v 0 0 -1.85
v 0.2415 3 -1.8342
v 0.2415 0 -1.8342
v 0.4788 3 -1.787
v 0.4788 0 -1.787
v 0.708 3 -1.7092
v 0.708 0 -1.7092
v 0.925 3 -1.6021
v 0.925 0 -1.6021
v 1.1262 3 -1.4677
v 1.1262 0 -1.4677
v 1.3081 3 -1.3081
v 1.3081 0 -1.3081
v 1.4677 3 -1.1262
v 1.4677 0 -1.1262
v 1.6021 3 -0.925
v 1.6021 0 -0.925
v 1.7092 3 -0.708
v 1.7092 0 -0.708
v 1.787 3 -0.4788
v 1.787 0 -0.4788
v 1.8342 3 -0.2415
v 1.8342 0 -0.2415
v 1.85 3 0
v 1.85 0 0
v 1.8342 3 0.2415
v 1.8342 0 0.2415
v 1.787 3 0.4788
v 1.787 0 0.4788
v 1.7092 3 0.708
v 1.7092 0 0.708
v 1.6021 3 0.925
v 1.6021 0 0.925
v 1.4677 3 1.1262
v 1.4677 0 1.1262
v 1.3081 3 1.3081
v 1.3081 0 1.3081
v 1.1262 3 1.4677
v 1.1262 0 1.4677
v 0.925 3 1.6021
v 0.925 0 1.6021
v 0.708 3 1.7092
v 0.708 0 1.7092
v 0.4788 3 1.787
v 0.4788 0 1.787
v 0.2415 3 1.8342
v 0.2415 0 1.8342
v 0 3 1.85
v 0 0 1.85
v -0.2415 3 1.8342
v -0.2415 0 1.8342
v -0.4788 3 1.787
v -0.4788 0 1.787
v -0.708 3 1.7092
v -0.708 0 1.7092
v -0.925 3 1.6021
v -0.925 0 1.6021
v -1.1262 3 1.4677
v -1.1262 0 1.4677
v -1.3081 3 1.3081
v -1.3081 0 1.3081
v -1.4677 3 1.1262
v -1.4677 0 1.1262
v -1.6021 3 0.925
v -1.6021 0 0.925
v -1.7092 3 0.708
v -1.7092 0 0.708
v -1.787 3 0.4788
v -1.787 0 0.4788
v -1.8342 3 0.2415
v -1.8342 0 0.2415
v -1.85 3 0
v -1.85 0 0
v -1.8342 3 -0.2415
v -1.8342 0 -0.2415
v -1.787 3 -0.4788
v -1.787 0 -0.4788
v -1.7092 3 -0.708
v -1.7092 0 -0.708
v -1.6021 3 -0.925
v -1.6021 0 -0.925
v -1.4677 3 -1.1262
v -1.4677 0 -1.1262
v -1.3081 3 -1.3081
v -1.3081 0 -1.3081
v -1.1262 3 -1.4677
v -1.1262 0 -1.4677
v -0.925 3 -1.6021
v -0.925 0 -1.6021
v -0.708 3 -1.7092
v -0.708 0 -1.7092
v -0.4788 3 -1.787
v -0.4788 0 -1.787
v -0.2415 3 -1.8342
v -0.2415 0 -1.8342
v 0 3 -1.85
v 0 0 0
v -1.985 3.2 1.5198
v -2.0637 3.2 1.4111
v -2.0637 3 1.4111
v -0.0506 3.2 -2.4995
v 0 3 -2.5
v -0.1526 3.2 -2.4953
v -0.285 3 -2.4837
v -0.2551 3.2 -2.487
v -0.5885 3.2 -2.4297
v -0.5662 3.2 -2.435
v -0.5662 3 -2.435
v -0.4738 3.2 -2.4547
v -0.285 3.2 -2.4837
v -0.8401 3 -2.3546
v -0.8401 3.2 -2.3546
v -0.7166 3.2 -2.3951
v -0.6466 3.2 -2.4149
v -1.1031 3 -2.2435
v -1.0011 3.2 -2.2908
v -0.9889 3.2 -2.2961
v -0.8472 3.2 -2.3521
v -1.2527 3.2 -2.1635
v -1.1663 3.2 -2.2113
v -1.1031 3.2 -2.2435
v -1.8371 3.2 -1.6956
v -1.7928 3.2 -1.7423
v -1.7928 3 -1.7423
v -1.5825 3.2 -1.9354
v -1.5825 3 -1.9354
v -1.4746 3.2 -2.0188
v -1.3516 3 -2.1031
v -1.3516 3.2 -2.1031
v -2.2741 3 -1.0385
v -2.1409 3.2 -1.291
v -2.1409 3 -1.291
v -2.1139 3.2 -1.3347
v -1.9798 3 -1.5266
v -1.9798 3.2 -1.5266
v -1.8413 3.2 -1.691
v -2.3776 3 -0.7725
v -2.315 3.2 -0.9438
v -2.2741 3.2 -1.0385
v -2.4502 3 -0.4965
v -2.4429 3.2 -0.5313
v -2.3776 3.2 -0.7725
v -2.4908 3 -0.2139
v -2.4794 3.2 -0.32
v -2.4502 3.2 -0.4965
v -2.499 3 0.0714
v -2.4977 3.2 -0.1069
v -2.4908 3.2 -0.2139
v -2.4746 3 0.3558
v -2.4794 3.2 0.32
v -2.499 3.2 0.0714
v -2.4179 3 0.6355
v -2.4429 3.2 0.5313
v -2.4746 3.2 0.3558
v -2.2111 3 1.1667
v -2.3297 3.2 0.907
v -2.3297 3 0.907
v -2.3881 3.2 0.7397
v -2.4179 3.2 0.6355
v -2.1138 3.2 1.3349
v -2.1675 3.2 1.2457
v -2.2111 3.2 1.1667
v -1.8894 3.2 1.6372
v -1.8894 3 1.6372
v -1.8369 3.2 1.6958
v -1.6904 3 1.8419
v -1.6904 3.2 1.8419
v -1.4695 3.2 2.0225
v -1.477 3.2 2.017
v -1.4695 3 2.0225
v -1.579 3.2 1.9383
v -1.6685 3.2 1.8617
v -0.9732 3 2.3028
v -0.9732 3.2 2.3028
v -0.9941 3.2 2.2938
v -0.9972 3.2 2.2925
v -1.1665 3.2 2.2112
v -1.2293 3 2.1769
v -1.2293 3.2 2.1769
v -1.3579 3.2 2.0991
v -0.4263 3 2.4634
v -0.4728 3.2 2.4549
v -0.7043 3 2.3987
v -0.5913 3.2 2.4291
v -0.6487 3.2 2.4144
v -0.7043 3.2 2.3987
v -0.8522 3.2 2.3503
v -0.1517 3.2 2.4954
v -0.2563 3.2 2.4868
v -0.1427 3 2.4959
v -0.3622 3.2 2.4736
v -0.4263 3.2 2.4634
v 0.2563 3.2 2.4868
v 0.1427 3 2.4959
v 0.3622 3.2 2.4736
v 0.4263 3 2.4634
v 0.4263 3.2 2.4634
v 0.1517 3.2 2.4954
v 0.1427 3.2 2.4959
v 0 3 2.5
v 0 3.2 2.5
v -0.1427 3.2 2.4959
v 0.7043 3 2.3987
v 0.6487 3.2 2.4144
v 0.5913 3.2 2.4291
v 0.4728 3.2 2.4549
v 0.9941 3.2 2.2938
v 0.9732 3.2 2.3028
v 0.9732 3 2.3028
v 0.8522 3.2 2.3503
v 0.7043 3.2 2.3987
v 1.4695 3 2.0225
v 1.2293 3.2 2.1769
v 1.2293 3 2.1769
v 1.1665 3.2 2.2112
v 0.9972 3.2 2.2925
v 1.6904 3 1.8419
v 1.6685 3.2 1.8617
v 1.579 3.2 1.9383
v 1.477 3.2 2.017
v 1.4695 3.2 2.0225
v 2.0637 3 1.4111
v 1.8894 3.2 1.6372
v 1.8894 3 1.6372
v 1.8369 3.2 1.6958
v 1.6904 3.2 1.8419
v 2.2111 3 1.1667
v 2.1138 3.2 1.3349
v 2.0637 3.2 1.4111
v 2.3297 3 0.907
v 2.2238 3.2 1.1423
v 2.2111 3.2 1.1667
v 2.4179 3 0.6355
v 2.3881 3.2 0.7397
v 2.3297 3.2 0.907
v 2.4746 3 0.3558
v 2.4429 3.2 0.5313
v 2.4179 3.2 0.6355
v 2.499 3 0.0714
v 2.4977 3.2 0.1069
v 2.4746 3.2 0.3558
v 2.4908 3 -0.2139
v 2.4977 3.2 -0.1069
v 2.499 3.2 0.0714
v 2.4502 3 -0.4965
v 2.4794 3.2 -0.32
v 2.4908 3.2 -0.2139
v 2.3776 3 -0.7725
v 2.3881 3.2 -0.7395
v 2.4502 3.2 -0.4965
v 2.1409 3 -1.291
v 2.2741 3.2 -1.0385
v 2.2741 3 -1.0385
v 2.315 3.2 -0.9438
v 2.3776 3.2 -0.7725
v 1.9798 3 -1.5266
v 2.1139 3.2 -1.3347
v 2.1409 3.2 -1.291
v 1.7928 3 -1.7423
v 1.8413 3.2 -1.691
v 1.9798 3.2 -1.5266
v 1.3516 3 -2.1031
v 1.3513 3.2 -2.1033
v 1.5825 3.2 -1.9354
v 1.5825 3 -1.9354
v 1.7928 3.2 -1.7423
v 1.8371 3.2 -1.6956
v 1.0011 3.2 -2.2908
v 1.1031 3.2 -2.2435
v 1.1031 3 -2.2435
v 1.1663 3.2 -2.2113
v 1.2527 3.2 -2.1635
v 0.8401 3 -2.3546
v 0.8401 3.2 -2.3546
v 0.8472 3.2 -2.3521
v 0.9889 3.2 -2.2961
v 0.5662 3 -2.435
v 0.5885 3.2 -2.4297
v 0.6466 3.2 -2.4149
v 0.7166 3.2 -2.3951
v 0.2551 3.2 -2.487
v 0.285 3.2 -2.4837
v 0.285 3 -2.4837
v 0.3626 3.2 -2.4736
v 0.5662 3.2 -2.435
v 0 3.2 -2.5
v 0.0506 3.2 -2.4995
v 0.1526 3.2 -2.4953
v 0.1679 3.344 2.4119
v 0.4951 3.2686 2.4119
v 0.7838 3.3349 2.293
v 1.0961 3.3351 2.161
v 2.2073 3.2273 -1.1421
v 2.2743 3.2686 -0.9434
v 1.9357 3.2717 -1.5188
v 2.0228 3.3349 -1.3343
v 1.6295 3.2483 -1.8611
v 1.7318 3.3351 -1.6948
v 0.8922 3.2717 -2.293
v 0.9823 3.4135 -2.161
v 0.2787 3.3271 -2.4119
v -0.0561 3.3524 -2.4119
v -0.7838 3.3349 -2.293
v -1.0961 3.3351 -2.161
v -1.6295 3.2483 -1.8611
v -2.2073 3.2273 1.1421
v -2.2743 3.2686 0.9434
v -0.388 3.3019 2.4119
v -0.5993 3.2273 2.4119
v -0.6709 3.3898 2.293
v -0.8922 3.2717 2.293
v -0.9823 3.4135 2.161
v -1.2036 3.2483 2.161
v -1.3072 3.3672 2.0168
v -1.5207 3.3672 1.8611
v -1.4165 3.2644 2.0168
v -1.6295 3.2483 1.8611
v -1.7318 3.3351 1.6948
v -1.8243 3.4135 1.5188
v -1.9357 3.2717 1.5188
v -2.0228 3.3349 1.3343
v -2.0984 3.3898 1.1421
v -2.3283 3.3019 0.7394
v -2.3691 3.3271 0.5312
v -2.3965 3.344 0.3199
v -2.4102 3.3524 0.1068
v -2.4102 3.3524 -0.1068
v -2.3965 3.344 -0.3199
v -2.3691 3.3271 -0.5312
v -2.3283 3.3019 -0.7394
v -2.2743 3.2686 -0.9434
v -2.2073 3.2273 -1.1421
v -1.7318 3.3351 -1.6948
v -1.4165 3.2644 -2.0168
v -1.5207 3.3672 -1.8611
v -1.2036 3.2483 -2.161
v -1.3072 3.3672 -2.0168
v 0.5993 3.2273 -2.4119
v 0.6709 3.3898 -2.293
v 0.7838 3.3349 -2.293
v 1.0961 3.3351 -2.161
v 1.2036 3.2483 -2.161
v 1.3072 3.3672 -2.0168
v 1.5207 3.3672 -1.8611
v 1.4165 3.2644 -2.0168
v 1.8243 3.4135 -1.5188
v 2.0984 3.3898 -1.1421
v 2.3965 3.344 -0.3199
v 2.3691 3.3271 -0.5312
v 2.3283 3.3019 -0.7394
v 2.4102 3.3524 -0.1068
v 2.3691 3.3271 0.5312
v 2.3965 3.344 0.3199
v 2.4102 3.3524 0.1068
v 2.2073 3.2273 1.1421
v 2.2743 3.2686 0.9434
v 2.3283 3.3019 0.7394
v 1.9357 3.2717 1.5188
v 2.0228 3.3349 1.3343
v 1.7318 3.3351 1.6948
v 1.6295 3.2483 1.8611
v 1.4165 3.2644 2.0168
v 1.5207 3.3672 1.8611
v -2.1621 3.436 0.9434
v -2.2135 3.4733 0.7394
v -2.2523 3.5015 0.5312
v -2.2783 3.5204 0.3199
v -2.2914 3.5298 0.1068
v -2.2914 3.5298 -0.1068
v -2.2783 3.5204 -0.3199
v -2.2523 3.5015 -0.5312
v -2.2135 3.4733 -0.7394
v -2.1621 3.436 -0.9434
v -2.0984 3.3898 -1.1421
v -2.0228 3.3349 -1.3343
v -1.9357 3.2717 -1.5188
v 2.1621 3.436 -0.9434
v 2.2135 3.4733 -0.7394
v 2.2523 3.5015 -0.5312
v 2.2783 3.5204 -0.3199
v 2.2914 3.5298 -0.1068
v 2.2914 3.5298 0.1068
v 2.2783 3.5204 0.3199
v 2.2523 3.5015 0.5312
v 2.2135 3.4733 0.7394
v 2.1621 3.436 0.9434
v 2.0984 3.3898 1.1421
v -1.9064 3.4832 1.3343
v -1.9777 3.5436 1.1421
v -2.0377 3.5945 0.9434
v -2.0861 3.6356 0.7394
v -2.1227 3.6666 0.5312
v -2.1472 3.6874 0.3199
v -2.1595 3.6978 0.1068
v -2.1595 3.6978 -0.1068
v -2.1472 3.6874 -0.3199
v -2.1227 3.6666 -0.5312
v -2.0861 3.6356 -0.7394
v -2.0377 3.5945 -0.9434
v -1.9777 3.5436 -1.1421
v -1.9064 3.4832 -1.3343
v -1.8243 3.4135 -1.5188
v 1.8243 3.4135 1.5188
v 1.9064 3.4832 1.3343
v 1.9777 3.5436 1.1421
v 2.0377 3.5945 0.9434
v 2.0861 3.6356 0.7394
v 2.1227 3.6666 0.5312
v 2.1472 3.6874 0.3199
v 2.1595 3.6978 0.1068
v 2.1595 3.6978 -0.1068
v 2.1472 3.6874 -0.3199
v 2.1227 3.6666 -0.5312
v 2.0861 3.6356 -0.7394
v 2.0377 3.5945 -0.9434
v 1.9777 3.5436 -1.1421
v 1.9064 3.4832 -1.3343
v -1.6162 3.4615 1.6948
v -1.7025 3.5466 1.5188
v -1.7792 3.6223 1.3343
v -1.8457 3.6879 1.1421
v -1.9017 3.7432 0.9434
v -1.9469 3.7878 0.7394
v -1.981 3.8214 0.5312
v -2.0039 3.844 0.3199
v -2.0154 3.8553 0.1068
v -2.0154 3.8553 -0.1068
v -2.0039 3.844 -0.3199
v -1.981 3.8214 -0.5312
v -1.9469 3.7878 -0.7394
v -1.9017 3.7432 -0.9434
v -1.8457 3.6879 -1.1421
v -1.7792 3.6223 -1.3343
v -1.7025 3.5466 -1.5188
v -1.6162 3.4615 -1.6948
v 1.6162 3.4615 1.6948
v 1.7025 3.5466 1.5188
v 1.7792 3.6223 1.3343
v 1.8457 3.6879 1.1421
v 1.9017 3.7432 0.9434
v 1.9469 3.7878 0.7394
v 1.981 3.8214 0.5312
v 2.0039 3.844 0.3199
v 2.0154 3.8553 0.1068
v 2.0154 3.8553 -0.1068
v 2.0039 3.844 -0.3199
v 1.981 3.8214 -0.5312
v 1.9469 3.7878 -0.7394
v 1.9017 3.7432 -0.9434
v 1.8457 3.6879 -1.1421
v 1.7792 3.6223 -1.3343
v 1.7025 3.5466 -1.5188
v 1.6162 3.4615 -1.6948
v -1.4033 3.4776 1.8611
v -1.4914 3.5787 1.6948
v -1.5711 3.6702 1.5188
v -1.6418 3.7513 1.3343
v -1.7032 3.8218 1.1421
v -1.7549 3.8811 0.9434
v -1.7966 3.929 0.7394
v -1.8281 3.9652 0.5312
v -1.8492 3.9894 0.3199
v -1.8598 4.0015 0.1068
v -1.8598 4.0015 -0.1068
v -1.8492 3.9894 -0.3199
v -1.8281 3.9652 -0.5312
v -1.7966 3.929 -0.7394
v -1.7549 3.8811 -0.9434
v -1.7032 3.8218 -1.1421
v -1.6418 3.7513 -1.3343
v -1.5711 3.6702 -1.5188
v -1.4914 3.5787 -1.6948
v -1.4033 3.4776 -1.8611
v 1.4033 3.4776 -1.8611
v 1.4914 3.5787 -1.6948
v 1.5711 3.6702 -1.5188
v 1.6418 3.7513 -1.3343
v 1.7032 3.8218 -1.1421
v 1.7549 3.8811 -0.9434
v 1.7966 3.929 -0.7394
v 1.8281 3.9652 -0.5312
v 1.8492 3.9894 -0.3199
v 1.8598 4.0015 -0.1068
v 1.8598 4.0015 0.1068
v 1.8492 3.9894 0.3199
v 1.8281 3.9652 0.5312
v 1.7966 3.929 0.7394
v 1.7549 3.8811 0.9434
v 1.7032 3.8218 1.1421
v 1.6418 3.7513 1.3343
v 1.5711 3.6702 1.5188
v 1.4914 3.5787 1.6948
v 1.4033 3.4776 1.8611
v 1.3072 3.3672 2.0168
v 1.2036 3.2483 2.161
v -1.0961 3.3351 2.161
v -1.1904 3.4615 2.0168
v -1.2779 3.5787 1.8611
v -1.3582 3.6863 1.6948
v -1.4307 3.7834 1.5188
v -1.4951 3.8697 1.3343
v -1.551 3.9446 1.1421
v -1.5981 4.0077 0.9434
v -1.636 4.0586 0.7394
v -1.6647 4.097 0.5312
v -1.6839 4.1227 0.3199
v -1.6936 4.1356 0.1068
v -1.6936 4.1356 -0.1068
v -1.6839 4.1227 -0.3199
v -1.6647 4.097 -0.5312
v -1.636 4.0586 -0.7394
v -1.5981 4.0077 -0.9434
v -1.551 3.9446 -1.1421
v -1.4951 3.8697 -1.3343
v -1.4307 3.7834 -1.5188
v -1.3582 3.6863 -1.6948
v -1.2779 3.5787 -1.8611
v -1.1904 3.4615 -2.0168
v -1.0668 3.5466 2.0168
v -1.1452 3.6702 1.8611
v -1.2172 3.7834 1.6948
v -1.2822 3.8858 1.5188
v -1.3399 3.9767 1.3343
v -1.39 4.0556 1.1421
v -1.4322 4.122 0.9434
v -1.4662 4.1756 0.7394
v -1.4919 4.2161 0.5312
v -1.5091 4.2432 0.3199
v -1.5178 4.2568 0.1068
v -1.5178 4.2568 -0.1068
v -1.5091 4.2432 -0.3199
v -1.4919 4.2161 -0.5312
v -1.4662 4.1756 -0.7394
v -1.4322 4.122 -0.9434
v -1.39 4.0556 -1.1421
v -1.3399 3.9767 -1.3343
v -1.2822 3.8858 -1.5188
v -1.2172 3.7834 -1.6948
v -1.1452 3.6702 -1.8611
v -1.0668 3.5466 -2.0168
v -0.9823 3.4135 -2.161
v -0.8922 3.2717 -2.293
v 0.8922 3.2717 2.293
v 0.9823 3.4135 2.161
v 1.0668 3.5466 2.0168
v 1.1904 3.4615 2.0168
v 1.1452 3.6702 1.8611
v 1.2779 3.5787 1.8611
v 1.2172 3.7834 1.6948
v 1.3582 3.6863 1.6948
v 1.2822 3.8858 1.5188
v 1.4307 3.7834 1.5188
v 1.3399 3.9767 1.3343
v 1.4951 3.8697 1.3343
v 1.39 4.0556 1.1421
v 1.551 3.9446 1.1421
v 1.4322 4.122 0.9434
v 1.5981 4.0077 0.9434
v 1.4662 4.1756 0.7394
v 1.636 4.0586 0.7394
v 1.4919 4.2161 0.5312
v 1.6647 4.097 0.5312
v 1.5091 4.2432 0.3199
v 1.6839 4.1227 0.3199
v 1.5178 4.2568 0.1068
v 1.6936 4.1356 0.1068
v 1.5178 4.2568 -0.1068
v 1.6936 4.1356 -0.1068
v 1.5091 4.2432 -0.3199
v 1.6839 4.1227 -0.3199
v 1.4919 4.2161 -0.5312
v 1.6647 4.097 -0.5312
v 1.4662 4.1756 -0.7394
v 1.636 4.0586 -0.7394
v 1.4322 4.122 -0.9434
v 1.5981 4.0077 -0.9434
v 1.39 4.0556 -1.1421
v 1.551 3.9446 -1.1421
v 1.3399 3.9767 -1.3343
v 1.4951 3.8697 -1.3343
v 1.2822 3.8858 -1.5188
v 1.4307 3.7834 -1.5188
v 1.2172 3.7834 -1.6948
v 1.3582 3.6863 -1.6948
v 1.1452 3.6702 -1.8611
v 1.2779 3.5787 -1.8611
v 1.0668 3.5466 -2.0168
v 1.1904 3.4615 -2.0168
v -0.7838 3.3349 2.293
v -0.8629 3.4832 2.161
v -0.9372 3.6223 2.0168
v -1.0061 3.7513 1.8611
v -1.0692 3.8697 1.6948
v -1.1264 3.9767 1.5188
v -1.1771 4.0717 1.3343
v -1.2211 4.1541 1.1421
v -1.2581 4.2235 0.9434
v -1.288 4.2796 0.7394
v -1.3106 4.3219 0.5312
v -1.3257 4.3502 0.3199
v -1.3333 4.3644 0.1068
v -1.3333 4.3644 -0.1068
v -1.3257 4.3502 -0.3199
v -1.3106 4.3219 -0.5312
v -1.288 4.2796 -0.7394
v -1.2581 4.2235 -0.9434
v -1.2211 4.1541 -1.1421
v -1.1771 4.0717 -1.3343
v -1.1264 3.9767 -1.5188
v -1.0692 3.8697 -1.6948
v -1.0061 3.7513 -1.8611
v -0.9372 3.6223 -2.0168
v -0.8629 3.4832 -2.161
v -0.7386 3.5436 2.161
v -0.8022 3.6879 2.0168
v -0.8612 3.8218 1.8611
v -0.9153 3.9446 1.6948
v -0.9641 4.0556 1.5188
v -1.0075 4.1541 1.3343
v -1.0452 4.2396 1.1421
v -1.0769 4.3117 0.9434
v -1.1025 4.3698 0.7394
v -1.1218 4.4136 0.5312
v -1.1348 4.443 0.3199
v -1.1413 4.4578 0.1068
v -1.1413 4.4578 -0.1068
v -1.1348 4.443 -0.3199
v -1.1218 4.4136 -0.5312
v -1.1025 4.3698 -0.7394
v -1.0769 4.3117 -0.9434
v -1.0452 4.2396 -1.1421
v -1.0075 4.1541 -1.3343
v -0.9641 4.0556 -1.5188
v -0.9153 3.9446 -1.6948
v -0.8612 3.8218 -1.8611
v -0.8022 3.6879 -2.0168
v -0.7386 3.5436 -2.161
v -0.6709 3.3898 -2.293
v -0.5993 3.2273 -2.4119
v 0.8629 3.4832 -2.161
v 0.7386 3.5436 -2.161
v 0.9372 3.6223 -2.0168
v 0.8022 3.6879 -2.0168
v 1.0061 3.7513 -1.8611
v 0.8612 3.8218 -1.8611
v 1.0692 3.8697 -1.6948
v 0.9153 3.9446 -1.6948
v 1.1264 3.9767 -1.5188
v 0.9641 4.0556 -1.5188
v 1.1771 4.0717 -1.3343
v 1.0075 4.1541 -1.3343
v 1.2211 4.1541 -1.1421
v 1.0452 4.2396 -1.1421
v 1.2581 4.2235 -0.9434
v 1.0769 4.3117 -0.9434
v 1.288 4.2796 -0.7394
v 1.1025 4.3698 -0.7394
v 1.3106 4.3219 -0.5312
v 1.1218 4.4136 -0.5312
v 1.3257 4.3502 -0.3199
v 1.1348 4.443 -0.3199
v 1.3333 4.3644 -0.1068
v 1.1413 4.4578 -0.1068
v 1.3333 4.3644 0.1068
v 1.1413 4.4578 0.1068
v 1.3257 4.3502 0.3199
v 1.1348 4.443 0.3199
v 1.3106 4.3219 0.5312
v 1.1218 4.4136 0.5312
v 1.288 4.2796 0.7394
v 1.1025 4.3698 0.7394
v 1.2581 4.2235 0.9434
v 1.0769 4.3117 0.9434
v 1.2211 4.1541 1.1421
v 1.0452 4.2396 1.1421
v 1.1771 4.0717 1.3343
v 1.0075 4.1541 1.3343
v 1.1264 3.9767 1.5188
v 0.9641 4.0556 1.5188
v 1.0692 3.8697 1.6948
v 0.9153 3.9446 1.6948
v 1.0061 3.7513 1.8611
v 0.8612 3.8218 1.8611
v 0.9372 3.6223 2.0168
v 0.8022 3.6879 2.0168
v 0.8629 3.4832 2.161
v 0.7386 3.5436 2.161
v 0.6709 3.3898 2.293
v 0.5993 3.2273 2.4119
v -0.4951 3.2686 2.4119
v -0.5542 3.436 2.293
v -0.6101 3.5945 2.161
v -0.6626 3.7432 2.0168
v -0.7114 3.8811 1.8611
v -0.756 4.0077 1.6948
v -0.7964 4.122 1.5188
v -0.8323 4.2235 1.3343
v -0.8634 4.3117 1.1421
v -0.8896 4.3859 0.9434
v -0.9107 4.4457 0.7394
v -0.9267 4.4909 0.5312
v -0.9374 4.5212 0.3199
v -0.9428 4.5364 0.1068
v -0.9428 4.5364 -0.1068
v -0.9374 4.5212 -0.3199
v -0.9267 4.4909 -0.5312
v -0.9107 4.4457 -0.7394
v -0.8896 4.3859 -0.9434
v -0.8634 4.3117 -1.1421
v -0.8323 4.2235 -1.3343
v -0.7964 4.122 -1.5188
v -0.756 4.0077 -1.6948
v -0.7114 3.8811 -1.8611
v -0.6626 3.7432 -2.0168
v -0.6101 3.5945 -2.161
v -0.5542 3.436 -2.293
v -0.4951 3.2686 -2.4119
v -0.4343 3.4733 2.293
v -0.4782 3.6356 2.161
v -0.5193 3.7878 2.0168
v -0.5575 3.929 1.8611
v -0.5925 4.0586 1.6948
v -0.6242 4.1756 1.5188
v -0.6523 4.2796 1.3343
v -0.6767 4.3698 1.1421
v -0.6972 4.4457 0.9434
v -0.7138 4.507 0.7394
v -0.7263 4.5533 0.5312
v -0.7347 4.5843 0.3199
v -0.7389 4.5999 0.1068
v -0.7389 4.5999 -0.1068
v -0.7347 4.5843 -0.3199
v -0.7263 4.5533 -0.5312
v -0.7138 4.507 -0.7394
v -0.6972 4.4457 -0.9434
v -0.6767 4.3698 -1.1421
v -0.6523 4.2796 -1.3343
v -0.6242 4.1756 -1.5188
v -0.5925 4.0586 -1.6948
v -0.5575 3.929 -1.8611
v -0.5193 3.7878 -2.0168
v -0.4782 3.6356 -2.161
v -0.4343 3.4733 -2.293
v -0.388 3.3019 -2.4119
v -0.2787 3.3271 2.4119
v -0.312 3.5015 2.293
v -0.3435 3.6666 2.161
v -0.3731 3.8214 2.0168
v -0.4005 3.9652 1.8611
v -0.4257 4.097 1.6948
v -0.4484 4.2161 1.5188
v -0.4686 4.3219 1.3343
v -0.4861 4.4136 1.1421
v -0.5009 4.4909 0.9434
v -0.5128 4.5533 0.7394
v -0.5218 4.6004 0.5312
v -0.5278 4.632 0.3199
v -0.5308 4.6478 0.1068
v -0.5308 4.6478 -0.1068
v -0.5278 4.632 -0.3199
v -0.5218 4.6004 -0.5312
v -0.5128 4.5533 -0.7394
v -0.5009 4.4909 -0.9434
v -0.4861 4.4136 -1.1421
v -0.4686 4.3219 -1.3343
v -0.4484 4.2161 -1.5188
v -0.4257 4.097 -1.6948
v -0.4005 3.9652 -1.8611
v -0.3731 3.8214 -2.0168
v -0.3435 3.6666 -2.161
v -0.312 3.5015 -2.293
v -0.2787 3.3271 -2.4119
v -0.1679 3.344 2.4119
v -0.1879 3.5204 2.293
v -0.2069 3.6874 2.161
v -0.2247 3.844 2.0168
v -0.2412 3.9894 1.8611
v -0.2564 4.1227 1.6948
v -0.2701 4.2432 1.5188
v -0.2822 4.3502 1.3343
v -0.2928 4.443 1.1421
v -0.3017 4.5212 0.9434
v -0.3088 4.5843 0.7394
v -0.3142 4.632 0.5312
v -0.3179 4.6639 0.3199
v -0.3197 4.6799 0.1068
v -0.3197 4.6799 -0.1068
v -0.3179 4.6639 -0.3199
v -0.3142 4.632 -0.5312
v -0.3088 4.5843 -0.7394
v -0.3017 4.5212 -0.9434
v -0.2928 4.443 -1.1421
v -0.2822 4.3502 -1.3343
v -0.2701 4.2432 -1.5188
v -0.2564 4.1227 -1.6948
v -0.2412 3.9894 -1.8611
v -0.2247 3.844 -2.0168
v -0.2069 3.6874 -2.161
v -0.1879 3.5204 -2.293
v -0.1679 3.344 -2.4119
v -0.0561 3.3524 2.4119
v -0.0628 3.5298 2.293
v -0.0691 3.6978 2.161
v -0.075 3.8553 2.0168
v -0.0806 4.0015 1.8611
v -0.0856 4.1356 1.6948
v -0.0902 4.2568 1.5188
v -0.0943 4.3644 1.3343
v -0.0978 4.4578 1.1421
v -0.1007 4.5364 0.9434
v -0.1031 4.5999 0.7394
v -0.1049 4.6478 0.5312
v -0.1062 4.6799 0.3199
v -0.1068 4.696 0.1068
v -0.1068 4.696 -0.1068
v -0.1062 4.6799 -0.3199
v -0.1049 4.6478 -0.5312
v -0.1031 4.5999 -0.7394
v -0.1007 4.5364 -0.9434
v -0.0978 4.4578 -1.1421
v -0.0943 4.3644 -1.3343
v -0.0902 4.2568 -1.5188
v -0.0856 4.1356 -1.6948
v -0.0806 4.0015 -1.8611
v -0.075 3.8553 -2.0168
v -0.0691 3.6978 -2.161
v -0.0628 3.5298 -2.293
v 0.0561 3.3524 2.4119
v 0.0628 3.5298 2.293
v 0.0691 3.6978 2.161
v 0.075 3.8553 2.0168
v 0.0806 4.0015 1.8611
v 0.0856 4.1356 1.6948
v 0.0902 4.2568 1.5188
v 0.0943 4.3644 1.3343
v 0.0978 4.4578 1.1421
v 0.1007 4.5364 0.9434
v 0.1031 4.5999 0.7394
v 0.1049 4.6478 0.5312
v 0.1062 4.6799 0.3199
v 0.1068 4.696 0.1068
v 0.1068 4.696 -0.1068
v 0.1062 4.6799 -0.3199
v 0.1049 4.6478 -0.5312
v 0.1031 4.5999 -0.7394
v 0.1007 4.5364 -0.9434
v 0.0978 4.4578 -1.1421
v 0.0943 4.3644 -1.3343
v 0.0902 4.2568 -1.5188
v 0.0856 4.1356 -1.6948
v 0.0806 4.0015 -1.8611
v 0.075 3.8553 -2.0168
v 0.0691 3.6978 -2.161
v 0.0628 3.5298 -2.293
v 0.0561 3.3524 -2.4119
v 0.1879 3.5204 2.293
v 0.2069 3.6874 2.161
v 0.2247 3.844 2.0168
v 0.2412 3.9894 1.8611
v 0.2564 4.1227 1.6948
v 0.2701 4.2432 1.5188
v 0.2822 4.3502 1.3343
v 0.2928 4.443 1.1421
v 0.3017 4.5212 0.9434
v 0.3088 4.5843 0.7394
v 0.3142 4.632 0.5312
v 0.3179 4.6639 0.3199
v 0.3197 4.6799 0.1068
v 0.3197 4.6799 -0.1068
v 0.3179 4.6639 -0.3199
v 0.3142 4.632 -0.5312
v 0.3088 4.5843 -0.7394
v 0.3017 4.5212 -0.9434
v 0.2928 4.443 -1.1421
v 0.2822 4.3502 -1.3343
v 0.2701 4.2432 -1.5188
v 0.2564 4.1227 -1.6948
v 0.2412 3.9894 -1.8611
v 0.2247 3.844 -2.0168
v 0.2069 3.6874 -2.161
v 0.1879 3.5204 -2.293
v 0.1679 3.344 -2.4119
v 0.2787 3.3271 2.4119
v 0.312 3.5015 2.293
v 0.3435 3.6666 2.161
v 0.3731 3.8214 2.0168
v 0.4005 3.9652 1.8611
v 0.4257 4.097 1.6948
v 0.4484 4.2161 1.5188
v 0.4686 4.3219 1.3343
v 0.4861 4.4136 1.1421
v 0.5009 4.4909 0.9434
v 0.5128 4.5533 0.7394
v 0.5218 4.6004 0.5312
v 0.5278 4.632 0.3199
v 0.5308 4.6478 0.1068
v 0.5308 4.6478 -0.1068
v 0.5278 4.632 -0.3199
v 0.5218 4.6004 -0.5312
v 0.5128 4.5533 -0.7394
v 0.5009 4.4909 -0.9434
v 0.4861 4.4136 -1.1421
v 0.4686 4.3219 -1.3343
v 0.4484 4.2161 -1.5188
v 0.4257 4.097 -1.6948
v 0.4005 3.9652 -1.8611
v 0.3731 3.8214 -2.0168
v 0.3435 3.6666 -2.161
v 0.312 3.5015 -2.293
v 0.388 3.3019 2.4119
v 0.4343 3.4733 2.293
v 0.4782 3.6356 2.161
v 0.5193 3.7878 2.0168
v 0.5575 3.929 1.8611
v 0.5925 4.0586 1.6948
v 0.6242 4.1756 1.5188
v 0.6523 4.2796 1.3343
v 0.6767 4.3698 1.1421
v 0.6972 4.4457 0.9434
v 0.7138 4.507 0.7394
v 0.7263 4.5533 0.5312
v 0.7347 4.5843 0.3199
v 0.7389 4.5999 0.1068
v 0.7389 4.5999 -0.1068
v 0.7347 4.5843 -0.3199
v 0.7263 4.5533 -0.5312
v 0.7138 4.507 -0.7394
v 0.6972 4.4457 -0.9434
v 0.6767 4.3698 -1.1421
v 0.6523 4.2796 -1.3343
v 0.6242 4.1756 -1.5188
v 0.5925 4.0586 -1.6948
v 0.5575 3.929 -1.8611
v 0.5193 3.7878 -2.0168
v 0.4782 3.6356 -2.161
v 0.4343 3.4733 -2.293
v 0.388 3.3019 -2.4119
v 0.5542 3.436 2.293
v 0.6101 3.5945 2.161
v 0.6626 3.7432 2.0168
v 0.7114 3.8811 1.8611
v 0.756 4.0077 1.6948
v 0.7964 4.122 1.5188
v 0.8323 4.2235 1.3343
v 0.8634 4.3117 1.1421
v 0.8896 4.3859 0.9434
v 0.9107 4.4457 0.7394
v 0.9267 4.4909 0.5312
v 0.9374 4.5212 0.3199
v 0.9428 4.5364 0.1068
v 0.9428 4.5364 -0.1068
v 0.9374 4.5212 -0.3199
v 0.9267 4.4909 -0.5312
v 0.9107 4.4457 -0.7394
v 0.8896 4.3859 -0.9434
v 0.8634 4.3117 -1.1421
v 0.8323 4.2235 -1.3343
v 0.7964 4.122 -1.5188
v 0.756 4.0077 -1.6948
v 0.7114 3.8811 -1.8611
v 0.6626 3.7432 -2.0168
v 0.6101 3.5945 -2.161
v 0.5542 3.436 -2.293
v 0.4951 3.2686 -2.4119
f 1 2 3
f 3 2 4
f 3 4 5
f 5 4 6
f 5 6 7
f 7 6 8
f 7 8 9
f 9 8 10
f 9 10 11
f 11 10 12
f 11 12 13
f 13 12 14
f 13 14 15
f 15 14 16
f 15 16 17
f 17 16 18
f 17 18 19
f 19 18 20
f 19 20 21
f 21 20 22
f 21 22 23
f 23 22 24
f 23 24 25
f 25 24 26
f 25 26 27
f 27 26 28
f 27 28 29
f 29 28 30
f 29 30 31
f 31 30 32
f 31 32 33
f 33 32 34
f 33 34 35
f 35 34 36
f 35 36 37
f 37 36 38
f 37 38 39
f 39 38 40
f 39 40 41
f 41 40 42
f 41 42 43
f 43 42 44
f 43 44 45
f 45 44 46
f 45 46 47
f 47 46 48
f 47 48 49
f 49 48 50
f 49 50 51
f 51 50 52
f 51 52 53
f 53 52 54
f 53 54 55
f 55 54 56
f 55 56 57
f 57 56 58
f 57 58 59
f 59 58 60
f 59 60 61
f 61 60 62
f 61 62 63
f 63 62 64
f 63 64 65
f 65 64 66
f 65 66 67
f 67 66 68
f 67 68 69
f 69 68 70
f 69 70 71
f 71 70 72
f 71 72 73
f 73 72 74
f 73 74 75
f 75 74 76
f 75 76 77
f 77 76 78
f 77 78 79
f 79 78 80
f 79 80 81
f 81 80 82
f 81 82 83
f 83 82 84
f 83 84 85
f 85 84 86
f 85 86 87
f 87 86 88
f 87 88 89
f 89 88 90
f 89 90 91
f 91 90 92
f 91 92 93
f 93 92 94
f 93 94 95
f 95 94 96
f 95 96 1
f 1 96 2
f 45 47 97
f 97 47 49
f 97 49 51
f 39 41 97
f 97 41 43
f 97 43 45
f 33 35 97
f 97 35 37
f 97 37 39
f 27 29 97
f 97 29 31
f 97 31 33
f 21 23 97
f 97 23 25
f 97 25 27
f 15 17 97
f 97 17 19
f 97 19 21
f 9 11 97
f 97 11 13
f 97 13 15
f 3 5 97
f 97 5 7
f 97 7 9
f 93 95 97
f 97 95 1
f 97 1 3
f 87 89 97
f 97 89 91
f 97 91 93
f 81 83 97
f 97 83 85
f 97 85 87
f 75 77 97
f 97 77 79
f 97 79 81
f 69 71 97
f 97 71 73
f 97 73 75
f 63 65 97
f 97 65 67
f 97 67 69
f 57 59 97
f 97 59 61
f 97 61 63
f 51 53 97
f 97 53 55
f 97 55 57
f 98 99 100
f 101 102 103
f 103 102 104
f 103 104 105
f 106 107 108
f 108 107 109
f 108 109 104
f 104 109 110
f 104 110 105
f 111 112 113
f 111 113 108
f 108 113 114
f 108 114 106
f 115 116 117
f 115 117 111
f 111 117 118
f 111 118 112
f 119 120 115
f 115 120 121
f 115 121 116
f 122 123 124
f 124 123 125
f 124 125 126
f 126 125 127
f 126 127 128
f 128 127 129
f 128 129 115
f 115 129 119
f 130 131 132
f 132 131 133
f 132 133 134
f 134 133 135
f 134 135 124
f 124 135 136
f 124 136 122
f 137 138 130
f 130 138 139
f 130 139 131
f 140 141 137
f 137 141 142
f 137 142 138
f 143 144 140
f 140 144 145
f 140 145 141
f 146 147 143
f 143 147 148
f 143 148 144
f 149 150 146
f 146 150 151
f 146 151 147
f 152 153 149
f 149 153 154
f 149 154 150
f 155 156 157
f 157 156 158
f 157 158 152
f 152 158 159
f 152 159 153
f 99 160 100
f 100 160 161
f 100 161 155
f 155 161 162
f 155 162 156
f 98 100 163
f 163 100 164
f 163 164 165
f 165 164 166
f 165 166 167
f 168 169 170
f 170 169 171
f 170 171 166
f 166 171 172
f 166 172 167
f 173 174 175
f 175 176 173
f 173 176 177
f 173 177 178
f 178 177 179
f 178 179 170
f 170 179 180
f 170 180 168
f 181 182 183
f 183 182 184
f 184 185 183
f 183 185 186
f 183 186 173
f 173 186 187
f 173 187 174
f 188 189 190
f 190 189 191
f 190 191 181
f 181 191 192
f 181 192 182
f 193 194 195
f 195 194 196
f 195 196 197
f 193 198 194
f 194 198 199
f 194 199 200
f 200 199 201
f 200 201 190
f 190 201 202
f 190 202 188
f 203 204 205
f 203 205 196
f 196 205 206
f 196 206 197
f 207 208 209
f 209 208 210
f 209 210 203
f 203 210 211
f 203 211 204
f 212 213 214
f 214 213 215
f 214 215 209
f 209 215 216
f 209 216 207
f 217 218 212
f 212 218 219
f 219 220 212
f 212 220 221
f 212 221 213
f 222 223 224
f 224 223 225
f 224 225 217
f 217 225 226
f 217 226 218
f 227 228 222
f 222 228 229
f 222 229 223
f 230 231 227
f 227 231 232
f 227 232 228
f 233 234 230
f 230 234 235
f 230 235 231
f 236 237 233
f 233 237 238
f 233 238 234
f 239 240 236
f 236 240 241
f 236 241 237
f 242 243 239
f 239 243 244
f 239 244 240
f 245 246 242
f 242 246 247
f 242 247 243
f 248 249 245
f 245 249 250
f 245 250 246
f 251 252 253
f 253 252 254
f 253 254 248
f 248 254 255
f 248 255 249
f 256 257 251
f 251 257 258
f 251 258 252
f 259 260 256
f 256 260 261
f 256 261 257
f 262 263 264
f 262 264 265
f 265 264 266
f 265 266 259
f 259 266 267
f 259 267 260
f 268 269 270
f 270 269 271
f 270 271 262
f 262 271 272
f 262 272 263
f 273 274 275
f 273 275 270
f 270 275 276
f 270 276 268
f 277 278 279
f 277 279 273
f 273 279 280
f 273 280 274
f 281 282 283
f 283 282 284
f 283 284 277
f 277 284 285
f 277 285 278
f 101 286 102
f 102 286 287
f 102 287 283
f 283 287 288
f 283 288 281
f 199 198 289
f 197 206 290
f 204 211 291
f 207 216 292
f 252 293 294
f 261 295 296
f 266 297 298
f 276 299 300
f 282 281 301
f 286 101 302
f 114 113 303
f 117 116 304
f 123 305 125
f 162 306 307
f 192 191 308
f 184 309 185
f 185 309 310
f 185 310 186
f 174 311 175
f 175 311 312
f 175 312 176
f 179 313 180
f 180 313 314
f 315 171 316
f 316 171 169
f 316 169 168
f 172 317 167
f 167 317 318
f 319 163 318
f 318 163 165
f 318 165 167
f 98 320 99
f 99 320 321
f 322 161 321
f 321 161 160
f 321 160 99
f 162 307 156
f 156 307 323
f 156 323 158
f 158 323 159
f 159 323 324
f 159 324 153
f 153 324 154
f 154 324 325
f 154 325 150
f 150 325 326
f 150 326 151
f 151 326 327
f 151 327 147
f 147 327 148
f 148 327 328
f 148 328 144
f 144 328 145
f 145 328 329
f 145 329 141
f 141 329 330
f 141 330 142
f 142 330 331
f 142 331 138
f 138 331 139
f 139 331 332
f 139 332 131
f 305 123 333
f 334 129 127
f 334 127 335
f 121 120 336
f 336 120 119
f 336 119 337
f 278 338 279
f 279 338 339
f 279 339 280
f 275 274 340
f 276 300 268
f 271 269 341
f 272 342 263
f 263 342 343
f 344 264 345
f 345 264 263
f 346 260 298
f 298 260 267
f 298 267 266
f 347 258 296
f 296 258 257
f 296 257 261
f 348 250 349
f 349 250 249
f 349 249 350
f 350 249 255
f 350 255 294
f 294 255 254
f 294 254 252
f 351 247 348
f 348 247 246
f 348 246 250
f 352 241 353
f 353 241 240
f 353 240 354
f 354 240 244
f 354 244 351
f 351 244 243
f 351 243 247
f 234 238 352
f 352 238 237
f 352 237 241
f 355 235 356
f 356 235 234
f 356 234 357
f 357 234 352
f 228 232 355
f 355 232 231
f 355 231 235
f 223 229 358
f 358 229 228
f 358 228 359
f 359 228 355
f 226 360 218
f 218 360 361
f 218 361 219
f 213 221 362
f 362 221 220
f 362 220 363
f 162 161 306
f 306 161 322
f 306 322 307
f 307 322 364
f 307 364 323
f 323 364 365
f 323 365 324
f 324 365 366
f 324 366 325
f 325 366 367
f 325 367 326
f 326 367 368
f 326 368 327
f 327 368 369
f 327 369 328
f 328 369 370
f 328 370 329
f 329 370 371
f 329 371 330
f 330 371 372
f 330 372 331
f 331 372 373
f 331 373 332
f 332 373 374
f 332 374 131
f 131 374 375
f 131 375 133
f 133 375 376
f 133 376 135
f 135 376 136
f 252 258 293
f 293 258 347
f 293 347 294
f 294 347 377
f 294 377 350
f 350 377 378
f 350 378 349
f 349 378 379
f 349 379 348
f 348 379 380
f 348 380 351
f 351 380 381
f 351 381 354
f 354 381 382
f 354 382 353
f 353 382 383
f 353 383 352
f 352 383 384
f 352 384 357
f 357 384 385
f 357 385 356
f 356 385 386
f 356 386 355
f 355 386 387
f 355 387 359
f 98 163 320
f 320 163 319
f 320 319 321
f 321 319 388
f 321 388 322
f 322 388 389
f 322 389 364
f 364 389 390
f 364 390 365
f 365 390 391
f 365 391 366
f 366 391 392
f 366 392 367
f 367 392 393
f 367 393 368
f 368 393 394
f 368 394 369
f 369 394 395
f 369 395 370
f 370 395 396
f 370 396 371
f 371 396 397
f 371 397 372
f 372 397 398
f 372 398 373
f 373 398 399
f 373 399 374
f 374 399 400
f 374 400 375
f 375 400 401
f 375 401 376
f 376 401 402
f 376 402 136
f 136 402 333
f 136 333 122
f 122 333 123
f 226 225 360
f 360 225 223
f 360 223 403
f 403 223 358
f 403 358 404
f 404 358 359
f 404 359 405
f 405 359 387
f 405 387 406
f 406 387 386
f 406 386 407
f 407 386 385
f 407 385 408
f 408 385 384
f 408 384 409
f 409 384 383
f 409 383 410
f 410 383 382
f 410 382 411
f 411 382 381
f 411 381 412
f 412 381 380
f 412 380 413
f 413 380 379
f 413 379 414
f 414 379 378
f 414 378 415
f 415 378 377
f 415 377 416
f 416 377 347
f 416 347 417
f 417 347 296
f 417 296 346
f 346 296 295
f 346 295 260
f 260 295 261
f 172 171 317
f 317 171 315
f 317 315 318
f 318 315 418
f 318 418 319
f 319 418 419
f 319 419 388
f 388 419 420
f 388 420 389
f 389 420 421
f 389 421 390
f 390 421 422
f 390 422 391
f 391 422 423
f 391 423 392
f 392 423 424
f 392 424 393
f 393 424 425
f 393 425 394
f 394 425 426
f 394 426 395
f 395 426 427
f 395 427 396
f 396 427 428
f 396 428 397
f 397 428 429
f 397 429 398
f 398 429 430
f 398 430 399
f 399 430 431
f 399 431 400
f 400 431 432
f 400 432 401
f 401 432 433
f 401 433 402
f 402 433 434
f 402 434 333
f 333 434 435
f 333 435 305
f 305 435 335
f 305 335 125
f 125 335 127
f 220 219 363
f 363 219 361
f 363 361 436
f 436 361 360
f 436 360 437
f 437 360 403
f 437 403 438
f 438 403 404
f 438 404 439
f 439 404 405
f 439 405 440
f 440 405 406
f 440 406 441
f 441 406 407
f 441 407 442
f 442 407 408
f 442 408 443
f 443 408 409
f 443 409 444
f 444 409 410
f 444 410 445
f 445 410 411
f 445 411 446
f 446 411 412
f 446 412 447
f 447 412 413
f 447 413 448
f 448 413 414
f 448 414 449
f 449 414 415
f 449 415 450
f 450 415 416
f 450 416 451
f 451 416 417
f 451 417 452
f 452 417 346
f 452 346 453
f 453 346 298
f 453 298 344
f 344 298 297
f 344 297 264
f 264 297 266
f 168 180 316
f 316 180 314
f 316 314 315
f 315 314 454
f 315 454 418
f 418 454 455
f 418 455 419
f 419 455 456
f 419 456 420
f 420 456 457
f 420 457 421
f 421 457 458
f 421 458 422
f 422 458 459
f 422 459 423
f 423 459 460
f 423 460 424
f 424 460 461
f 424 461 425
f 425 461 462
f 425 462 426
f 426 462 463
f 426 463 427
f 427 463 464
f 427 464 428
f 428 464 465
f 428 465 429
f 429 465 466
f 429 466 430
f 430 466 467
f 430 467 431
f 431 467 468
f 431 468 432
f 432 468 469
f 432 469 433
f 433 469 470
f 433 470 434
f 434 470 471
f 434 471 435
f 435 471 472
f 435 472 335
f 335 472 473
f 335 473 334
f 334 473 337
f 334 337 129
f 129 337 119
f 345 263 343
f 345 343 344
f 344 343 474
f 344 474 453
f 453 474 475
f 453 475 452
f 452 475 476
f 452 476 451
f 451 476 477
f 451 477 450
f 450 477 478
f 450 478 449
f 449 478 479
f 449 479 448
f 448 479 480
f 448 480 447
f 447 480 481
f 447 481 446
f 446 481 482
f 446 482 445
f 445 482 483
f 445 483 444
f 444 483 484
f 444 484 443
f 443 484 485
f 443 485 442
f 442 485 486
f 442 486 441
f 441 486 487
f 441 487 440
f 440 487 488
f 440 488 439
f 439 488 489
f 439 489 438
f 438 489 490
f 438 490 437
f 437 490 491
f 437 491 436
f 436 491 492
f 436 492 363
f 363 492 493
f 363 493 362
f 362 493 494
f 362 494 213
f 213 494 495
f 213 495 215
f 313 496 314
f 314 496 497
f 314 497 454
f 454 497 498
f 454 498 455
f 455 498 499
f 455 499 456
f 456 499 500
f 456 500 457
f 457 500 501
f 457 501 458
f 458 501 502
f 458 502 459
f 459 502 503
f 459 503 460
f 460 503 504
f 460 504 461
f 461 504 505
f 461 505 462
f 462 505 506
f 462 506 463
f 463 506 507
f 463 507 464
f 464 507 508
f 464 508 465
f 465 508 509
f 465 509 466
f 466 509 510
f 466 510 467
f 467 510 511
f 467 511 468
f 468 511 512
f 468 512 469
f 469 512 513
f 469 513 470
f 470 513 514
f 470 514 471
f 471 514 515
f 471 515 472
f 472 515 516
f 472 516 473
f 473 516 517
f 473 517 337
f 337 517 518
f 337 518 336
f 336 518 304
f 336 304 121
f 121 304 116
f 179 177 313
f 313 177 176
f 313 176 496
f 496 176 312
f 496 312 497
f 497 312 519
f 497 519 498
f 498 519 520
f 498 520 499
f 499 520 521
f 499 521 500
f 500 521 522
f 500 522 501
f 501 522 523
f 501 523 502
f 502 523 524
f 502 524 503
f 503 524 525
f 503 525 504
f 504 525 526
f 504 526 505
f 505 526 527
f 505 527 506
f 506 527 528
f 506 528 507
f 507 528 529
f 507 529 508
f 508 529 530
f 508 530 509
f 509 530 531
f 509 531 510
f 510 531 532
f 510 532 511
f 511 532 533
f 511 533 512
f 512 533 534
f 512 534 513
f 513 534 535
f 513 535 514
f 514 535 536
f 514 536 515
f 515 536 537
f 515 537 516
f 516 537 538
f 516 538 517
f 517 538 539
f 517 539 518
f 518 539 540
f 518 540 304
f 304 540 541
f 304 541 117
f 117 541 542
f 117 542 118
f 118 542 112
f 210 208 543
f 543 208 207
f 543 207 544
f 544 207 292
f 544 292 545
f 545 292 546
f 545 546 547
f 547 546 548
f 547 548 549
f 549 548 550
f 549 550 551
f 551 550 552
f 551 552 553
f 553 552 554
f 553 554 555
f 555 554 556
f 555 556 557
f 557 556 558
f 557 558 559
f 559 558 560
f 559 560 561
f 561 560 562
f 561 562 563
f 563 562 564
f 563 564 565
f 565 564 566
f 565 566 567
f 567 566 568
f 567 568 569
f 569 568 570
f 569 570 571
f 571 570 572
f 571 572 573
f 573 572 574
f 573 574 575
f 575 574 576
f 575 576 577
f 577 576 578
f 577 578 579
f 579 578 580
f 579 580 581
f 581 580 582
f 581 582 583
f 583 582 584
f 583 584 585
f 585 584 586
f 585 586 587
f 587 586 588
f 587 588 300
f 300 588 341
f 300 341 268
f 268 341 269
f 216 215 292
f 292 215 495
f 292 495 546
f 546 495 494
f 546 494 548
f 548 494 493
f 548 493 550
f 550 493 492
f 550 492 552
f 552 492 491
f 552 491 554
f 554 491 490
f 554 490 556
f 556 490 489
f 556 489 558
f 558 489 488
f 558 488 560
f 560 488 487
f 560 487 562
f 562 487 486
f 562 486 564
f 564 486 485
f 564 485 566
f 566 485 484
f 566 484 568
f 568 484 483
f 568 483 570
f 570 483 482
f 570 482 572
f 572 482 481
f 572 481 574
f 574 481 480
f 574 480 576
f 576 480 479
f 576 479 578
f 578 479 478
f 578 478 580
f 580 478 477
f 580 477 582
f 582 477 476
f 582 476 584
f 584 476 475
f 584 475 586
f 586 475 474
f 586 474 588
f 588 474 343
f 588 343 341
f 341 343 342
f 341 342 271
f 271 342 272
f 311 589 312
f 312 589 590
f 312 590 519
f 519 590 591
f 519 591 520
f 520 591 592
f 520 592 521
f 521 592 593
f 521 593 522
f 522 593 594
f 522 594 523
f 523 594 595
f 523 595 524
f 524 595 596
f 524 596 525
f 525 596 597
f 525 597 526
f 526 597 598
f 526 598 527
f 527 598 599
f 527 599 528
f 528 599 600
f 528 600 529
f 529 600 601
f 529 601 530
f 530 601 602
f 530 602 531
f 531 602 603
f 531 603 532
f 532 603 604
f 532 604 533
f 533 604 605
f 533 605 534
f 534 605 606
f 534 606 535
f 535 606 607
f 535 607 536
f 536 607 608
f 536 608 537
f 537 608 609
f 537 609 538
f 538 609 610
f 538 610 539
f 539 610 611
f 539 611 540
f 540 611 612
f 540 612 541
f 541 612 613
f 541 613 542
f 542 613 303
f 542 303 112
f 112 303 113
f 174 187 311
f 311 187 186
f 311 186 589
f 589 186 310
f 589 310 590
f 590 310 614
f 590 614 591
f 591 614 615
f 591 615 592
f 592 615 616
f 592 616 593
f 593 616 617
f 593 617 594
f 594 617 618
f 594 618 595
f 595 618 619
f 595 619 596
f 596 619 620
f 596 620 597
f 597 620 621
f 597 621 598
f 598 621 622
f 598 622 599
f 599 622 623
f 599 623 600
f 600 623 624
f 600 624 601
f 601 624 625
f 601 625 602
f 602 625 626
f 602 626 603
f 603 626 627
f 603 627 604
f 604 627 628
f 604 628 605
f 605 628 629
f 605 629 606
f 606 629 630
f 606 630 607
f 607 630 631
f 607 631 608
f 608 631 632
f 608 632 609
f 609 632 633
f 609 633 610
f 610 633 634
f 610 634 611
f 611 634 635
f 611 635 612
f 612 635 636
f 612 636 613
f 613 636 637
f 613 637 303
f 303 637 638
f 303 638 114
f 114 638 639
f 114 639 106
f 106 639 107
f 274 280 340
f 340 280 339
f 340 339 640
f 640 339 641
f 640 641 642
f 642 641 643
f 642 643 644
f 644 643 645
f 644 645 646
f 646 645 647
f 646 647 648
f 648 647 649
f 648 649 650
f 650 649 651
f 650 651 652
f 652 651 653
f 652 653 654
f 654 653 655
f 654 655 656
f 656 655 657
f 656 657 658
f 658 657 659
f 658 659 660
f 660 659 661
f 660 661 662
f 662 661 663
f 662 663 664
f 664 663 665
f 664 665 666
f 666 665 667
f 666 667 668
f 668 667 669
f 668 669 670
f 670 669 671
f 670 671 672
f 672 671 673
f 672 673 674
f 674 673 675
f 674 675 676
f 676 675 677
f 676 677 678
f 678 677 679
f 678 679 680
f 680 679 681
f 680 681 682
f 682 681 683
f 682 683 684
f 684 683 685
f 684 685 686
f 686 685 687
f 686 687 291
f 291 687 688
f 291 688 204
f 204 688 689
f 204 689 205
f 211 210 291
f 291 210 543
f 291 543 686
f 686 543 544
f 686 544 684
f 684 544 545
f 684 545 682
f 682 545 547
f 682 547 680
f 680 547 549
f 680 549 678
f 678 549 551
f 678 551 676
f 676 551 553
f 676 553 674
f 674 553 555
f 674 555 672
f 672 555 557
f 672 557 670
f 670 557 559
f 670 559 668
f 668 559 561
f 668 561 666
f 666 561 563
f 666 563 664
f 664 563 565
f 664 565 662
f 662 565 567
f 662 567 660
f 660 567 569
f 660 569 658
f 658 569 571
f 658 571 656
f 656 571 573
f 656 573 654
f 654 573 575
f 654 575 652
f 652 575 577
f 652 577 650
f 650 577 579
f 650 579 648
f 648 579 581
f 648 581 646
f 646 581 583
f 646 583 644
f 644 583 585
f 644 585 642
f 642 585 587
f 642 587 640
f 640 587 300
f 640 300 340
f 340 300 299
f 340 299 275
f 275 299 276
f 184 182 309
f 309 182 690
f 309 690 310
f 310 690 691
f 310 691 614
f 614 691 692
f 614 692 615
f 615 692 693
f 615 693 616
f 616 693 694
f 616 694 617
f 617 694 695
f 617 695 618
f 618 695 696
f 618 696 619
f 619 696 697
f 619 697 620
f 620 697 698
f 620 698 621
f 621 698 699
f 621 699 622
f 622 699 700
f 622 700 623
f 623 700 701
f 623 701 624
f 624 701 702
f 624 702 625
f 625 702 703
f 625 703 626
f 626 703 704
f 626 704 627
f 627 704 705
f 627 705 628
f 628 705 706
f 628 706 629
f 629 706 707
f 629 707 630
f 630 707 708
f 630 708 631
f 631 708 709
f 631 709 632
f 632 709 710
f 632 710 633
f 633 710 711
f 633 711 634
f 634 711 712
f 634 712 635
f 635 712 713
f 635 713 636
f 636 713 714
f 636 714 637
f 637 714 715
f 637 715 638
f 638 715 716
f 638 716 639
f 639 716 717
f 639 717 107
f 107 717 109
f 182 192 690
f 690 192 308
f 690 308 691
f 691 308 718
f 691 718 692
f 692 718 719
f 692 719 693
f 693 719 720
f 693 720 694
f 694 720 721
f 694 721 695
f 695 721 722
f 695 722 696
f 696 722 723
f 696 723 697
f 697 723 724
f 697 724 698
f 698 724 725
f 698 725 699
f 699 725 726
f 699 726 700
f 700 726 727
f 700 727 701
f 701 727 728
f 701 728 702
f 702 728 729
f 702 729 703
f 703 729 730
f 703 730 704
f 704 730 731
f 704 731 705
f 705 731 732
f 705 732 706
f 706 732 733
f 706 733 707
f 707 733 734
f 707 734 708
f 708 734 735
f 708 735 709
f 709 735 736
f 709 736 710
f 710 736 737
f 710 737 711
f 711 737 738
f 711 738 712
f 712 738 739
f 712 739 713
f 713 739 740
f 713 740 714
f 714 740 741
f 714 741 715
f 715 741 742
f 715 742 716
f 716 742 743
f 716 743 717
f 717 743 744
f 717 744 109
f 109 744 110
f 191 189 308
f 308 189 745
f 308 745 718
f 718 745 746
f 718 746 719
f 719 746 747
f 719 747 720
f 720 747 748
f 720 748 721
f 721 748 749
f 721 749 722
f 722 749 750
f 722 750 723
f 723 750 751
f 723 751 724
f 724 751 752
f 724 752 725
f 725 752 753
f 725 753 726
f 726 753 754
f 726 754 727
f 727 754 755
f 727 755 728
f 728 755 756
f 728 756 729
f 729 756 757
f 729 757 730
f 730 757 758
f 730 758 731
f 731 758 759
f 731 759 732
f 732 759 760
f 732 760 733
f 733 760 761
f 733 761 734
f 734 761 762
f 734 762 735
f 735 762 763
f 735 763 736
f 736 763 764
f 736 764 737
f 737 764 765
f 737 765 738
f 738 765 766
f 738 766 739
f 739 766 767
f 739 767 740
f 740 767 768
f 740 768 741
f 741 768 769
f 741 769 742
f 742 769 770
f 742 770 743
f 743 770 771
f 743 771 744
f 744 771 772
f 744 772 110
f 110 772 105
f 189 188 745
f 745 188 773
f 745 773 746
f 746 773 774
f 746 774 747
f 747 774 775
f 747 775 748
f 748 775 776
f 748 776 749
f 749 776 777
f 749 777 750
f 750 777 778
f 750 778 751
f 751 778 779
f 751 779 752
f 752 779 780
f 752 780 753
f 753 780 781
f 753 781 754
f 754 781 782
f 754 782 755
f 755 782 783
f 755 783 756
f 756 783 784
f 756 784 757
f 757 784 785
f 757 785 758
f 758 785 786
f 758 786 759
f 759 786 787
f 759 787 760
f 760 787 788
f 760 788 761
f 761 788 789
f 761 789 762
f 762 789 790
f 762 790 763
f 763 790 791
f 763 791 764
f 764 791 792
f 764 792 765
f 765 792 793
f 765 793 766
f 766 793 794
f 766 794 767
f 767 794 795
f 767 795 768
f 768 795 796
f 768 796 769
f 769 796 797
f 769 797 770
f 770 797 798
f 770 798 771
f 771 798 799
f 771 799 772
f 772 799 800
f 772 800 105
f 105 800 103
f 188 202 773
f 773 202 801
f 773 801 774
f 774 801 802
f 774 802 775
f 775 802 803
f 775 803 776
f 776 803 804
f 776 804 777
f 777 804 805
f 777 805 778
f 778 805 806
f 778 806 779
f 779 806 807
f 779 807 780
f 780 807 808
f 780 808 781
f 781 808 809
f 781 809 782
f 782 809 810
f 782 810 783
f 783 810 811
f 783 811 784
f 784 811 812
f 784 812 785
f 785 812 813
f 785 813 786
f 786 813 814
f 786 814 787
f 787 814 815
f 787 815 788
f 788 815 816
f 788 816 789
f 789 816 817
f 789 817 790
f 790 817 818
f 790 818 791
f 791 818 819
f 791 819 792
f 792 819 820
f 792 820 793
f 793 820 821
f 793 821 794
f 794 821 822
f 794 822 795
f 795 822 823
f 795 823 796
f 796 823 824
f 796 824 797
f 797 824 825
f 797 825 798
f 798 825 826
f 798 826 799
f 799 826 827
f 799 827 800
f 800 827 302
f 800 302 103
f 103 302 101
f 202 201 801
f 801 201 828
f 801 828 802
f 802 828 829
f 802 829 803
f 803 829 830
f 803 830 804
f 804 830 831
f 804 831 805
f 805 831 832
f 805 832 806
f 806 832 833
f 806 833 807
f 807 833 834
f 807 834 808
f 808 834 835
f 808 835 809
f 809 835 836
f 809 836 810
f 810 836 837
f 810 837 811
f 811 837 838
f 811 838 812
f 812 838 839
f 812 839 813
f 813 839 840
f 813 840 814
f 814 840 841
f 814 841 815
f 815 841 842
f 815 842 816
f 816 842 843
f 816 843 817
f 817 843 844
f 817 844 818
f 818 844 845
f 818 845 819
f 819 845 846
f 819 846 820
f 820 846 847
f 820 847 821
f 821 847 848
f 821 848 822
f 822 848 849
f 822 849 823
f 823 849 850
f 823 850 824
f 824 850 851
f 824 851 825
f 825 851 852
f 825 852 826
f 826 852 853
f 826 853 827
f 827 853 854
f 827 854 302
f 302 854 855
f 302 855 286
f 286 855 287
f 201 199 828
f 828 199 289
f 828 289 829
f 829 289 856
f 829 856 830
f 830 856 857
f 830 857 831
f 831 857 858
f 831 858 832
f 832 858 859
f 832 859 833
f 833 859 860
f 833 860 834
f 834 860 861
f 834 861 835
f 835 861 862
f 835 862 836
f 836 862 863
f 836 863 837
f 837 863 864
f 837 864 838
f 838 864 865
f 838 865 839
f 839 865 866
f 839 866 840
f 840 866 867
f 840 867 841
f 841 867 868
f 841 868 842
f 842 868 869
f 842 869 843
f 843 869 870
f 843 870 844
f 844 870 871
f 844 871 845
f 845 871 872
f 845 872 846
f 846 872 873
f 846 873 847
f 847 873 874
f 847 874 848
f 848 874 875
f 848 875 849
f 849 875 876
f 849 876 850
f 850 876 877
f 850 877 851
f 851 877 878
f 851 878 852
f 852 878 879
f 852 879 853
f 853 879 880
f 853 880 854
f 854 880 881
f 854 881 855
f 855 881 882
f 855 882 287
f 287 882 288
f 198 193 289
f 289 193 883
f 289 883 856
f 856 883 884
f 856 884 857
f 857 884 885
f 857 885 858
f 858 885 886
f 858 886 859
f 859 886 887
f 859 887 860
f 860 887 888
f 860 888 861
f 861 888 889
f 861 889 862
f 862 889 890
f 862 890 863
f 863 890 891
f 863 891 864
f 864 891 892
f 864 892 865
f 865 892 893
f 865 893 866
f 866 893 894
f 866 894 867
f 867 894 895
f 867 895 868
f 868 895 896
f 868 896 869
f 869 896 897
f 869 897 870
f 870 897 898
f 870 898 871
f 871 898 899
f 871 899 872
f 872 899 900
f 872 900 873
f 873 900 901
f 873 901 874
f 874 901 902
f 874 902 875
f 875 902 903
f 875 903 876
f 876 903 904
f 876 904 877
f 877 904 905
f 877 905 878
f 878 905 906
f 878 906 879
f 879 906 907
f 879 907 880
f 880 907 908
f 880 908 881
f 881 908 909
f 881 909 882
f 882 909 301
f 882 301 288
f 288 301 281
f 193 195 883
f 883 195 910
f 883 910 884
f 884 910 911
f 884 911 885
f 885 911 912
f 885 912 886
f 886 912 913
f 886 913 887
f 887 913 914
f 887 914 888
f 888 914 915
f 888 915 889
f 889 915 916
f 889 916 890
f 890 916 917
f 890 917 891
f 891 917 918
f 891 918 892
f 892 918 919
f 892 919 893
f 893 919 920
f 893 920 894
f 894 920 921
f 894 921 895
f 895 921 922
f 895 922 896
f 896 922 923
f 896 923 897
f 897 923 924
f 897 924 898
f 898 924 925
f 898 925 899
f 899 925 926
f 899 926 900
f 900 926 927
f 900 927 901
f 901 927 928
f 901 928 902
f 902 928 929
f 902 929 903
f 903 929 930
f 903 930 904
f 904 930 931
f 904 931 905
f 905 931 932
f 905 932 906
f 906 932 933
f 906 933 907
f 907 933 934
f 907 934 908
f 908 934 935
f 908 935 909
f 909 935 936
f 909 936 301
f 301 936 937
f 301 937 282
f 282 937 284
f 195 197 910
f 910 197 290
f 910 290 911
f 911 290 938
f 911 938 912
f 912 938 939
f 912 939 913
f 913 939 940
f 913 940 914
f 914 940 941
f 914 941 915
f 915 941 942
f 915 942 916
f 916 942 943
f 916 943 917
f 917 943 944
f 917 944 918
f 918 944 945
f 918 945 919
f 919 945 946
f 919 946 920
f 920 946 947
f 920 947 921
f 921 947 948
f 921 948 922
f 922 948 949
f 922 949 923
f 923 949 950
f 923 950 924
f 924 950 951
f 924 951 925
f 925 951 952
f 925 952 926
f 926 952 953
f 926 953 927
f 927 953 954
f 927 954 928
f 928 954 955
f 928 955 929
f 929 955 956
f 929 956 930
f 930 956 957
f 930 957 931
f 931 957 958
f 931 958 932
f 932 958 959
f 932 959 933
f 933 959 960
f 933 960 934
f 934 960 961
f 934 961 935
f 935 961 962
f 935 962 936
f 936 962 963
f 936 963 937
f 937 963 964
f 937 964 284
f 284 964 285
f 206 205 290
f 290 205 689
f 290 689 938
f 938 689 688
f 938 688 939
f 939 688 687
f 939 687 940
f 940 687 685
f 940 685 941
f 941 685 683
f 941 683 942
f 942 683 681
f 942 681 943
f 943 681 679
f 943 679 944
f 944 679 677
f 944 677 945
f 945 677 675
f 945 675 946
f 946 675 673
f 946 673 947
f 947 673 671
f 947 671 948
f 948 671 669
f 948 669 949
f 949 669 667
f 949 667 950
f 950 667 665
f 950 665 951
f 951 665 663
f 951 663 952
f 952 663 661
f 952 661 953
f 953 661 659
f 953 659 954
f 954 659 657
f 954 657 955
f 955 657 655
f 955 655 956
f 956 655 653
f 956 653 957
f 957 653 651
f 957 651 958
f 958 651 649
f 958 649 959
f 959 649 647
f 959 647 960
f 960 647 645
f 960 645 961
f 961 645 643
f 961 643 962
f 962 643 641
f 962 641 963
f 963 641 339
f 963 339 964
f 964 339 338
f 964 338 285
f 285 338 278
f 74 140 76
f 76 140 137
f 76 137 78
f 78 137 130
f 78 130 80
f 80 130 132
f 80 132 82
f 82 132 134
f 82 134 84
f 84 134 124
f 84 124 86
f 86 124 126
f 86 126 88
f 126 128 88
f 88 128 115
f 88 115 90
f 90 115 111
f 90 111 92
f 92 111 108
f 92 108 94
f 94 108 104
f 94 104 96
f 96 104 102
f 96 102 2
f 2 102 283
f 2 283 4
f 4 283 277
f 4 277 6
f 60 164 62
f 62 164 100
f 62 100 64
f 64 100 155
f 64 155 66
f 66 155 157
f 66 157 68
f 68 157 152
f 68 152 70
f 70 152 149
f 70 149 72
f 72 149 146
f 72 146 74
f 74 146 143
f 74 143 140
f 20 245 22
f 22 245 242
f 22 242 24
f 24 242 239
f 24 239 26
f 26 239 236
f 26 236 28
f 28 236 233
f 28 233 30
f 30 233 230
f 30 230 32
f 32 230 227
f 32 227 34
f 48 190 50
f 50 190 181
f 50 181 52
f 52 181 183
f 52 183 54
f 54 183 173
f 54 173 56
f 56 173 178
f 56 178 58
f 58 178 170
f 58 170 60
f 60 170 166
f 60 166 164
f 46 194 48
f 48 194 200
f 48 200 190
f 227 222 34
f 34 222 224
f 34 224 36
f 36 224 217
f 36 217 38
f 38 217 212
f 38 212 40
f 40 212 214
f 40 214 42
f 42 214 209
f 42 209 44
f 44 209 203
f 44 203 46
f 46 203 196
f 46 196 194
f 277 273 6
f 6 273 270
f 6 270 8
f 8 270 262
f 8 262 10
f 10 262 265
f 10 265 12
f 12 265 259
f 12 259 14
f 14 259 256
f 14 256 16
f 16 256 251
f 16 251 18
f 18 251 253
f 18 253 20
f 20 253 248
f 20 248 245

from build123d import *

# Parameters (mm, degrees)
SKETCH1_R           = 1.85
BOSS_EXTRUDE1_DEPTH = 3
SKETCH2_R           = 2.5
BOSS_EXTRUDE2_DEPTH = 0.2
DOME2_FACE_RADIUS   = 2.5
DOME2_HEIGHT        = 1.5


with BuildPart() as part:
    # Sketch1 → Boss-Extrude1 (new body)
    with BuildSketch(Plane(origin=(0, 0, 0), x_dir=(1, 0, 0), z_dir=(0, 1, 0))):
        with Locations(Location((0, 0, 0), (0, 0, 270))):
            Circle(SKETCH1_R)
    extrude(amount=BOSS_EXTRUDE1_DEPTH)

    # Sketch2 → Boss-Extrude2 (add)
    with BuildSketch(Plane(origin=(0, 3, 0), x_dir=(1, 0, 0), z_dir=(0, 1, 0))):
        with Locations(Location((0, 0, 0), (0, 0, 270))):
            Circle(SKETCH2_R)
    extrude(amount=BOSS_EXTRUDE2_DEPTH)

    # Dome2: a dome of height H over a round flat face of radius A is a cap of a sphere of radius (A * A + H * H) / (2 * H)
    dome2_r = (DOME2_FACE_RADIUS * DOME2_FACE_RADIUS + DOME2_HEIGHT * DOME2_HEIGHT) / (2 * DOME2_HEIGHT)
    dome2_base = Plane((0, 3.2, 0), z_dir=(0, 1, 0))
    with Locations(dome2_base.offset(DOME2_HEIGHT - dome2_r)):
        dome2_ball = Sphere(dome2_r, mode=Mode.PRIVATE)
    add(split(dome2_ball, bisect_by=dome2_base, keep=Keep.TOP, mode=Mode.PRIVATE))


solid = part.part
